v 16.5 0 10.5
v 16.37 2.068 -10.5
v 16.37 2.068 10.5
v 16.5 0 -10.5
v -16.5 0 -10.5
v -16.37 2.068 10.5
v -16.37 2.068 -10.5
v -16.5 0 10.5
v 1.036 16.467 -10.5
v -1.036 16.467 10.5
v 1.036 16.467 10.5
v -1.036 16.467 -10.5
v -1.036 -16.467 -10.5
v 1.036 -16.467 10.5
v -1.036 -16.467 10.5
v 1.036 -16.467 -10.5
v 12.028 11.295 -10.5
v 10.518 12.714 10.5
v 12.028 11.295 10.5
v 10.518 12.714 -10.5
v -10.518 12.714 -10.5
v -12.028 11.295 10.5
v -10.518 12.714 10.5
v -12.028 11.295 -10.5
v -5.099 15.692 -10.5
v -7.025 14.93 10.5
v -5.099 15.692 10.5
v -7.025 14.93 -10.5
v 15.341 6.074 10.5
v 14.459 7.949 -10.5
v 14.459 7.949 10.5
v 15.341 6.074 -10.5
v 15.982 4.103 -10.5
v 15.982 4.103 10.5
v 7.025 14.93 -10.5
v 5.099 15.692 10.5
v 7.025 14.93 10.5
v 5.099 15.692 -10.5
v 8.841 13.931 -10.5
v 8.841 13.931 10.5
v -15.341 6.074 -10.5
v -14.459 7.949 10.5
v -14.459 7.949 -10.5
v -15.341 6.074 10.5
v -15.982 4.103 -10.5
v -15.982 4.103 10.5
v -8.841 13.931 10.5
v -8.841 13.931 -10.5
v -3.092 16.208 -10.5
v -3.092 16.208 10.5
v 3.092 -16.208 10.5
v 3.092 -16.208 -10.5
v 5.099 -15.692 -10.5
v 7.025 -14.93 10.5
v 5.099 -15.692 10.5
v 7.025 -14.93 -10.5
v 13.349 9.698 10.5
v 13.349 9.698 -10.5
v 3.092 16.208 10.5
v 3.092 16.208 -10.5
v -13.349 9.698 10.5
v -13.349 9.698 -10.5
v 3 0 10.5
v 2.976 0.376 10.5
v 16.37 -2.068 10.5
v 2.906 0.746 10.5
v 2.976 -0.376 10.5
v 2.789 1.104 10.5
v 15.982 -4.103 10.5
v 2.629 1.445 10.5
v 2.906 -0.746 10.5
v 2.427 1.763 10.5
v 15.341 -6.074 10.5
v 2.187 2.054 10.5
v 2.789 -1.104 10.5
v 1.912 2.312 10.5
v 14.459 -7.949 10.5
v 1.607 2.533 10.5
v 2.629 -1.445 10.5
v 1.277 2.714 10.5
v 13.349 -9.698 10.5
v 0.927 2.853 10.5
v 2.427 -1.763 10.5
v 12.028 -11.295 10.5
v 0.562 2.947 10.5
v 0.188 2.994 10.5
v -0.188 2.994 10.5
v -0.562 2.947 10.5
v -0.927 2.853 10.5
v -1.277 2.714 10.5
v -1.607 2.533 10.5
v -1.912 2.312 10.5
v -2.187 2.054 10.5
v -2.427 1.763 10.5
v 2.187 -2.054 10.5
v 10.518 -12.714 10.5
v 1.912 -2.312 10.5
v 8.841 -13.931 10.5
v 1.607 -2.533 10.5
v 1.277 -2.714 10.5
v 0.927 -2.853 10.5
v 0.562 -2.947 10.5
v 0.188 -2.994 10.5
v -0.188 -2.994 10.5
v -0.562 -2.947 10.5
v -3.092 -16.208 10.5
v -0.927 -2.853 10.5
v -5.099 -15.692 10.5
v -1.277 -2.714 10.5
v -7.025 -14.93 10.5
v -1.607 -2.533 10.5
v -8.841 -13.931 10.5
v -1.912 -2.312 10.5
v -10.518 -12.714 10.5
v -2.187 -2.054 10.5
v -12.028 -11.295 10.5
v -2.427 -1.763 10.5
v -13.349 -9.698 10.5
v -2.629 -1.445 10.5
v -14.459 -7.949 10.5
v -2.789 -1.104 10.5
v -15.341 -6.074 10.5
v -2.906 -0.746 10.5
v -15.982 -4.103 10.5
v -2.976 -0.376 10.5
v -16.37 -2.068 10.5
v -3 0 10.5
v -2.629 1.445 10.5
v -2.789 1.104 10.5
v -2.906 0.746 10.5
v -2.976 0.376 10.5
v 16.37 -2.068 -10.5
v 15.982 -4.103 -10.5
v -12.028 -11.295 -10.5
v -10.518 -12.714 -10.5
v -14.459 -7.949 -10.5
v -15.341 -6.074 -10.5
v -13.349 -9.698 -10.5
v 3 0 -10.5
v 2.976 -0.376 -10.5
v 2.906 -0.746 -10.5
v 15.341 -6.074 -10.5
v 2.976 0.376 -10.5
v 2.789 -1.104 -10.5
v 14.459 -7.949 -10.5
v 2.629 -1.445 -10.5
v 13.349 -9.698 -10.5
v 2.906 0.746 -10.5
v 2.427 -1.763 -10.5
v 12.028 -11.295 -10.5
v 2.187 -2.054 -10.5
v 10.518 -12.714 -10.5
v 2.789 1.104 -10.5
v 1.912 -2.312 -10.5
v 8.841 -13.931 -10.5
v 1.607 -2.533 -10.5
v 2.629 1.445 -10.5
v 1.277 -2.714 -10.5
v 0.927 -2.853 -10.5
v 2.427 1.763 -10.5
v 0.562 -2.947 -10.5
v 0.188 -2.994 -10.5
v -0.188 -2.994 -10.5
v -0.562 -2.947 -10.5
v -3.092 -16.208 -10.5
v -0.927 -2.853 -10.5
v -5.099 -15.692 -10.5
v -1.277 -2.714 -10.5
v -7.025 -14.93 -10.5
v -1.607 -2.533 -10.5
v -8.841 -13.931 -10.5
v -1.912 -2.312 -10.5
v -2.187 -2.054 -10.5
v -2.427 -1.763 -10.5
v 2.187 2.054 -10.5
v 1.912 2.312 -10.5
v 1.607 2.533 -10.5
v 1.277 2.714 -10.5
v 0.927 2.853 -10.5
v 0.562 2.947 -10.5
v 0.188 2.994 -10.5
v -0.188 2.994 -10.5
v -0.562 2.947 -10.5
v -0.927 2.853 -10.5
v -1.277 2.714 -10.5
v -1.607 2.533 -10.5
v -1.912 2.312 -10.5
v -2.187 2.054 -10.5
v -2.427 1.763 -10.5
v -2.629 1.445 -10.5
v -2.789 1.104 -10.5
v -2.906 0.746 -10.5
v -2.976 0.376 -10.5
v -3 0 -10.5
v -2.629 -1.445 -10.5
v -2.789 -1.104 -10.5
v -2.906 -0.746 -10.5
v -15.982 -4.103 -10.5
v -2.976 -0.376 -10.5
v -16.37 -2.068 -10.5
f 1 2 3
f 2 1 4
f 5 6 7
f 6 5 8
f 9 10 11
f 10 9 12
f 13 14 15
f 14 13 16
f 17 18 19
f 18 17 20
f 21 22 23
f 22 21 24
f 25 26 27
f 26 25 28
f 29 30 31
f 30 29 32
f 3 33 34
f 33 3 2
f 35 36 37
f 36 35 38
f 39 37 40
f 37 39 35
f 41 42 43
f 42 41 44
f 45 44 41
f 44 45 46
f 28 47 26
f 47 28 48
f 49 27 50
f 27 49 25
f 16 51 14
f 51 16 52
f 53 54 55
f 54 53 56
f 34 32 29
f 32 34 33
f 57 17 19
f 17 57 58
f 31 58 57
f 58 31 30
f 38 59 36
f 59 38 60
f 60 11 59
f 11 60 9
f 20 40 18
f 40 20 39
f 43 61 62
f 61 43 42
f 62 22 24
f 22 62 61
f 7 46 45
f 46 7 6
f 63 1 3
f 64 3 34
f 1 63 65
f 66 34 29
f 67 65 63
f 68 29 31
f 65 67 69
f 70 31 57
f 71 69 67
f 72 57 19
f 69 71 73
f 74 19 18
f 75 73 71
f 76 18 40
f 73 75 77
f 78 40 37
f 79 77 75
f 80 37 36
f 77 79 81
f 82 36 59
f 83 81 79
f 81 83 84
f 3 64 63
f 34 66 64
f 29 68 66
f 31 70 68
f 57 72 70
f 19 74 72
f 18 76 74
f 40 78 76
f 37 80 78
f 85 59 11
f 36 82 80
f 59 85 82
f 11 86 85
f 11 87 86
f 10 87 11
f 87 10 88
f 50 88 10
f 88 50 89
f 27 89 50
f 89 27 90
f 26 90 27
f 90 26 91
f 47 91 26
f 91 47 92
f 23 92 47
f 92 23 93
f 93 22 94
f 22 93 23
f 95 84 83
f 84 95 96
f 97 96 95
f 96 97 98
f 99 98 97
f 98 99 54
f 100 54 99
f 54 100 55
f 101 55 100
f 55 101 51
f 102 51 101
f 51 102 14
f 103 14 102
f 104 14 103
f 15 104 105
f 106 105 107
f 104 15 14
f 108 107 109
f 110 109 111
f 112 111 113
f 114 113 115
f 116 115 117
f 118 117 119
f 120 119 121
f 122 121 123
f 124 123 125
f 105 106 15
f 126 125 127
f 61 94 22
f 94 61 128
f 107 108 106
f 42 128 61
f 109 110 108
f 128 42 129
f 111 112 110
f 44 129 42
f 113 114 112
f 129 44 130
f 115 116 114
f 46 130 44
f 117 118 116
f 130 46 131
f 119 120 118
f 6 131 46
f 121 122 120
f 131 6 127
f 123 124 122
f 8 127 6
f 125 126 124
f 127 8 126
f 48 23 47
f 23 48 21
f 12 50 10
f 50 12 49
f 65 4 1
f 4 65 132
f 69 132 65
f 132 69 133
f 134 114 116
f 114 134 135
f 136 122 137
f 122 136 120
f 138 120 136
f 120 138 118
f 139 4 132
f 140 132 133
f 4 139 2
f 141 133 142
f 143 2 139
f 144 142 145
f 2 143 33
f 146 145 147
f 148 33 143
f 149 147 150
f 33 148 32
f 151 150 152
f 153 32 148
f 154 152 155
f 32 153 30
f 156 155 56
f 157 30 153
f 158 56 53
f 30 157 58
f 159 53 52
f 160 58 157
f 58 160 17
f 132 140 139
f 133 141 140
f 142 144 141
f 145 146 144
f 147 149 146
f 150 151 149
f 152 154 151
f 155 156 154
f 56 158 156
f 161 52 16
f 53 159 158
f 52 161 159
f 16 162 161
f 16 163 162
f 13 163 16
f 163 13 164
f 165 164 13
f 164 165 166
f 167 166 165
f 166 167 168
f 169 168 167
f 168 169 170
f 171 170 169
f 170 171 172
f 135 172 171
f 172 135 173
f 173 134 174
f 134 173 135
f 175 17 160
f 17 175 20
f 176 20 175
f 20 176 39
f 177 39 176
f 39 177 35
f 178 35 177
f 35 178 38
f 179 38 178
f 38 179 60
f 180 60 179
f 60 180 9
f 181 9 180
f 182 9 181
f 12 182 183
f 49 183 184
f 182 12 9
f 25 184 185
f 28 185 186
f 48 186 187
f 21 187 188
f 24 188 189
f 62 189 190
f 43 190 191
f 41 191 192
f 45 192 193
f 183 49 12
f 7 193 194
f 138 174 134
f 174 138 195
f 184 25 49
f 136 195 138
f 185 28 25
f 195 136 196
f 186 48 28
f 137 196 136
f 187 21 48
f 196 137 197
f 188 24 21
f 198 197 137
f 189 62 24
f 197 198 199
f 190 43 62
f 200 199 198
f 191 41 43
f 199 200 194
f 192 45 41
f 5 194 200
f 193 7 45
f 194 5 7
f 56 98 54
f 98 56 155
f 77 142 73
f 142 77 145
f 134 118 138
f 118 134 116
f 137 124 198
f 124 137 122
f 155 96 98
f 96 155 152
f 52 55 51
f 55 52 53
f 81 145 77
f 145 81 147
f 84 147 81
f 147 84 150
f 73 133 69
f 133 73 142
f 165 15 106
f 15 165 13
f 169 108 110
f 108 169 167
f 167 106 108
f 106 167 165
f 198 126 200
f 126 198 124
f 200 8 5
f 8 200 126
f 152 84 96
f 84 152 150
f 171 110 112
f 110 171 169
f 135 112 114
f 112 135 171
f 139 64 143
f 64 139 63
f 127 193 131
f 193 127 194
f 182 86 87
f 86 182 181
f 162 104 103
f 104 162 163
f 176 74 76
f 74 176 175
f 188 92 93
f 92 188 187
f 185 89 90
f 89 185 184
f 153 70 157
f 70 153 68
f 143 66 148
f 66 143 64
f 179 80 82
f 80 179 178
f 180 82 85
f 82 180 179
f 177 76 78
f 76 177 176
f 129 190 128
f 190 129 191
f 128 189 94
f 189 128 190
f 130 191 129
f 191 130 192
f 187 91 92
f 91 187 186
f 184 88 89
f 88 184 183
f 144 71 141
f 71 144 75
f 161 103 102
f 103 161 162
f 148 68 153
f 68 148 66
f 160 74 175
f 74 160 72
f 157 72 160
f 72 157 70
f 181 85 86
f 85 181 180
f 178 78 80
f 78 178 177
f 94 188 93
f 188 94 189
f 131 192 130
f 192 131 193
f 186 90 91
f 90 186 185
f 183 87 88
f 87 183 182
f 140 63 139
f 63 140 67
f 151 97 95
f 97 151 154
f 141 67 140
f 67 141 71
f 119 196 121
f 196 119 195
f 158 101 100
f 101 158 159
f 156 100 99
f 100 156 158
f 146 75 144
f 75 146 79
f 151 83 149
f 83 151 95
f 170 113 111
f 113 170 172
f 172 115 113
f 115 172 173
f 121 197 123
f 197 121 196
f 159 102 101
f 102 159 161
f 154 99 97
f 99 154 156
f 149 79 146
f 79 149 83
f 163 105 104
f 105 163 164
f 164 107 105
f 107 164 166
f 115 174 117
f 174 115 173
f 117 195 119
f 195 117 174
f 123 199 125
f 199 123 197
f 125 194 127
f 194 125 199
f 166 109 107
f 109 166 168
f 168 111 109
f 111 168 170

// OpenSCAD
$fn = 50;


difference() {
	union() {
		translate(v = [0, 0, -10.5000000000]) {
			cylinder(h = 21, r = 16.5000000000);
		}
	}
	union() {
		translate(v = [0, 0, -100.0000000000]) {
			cylinder(h = 200, r = 3);
		}
	}
}
